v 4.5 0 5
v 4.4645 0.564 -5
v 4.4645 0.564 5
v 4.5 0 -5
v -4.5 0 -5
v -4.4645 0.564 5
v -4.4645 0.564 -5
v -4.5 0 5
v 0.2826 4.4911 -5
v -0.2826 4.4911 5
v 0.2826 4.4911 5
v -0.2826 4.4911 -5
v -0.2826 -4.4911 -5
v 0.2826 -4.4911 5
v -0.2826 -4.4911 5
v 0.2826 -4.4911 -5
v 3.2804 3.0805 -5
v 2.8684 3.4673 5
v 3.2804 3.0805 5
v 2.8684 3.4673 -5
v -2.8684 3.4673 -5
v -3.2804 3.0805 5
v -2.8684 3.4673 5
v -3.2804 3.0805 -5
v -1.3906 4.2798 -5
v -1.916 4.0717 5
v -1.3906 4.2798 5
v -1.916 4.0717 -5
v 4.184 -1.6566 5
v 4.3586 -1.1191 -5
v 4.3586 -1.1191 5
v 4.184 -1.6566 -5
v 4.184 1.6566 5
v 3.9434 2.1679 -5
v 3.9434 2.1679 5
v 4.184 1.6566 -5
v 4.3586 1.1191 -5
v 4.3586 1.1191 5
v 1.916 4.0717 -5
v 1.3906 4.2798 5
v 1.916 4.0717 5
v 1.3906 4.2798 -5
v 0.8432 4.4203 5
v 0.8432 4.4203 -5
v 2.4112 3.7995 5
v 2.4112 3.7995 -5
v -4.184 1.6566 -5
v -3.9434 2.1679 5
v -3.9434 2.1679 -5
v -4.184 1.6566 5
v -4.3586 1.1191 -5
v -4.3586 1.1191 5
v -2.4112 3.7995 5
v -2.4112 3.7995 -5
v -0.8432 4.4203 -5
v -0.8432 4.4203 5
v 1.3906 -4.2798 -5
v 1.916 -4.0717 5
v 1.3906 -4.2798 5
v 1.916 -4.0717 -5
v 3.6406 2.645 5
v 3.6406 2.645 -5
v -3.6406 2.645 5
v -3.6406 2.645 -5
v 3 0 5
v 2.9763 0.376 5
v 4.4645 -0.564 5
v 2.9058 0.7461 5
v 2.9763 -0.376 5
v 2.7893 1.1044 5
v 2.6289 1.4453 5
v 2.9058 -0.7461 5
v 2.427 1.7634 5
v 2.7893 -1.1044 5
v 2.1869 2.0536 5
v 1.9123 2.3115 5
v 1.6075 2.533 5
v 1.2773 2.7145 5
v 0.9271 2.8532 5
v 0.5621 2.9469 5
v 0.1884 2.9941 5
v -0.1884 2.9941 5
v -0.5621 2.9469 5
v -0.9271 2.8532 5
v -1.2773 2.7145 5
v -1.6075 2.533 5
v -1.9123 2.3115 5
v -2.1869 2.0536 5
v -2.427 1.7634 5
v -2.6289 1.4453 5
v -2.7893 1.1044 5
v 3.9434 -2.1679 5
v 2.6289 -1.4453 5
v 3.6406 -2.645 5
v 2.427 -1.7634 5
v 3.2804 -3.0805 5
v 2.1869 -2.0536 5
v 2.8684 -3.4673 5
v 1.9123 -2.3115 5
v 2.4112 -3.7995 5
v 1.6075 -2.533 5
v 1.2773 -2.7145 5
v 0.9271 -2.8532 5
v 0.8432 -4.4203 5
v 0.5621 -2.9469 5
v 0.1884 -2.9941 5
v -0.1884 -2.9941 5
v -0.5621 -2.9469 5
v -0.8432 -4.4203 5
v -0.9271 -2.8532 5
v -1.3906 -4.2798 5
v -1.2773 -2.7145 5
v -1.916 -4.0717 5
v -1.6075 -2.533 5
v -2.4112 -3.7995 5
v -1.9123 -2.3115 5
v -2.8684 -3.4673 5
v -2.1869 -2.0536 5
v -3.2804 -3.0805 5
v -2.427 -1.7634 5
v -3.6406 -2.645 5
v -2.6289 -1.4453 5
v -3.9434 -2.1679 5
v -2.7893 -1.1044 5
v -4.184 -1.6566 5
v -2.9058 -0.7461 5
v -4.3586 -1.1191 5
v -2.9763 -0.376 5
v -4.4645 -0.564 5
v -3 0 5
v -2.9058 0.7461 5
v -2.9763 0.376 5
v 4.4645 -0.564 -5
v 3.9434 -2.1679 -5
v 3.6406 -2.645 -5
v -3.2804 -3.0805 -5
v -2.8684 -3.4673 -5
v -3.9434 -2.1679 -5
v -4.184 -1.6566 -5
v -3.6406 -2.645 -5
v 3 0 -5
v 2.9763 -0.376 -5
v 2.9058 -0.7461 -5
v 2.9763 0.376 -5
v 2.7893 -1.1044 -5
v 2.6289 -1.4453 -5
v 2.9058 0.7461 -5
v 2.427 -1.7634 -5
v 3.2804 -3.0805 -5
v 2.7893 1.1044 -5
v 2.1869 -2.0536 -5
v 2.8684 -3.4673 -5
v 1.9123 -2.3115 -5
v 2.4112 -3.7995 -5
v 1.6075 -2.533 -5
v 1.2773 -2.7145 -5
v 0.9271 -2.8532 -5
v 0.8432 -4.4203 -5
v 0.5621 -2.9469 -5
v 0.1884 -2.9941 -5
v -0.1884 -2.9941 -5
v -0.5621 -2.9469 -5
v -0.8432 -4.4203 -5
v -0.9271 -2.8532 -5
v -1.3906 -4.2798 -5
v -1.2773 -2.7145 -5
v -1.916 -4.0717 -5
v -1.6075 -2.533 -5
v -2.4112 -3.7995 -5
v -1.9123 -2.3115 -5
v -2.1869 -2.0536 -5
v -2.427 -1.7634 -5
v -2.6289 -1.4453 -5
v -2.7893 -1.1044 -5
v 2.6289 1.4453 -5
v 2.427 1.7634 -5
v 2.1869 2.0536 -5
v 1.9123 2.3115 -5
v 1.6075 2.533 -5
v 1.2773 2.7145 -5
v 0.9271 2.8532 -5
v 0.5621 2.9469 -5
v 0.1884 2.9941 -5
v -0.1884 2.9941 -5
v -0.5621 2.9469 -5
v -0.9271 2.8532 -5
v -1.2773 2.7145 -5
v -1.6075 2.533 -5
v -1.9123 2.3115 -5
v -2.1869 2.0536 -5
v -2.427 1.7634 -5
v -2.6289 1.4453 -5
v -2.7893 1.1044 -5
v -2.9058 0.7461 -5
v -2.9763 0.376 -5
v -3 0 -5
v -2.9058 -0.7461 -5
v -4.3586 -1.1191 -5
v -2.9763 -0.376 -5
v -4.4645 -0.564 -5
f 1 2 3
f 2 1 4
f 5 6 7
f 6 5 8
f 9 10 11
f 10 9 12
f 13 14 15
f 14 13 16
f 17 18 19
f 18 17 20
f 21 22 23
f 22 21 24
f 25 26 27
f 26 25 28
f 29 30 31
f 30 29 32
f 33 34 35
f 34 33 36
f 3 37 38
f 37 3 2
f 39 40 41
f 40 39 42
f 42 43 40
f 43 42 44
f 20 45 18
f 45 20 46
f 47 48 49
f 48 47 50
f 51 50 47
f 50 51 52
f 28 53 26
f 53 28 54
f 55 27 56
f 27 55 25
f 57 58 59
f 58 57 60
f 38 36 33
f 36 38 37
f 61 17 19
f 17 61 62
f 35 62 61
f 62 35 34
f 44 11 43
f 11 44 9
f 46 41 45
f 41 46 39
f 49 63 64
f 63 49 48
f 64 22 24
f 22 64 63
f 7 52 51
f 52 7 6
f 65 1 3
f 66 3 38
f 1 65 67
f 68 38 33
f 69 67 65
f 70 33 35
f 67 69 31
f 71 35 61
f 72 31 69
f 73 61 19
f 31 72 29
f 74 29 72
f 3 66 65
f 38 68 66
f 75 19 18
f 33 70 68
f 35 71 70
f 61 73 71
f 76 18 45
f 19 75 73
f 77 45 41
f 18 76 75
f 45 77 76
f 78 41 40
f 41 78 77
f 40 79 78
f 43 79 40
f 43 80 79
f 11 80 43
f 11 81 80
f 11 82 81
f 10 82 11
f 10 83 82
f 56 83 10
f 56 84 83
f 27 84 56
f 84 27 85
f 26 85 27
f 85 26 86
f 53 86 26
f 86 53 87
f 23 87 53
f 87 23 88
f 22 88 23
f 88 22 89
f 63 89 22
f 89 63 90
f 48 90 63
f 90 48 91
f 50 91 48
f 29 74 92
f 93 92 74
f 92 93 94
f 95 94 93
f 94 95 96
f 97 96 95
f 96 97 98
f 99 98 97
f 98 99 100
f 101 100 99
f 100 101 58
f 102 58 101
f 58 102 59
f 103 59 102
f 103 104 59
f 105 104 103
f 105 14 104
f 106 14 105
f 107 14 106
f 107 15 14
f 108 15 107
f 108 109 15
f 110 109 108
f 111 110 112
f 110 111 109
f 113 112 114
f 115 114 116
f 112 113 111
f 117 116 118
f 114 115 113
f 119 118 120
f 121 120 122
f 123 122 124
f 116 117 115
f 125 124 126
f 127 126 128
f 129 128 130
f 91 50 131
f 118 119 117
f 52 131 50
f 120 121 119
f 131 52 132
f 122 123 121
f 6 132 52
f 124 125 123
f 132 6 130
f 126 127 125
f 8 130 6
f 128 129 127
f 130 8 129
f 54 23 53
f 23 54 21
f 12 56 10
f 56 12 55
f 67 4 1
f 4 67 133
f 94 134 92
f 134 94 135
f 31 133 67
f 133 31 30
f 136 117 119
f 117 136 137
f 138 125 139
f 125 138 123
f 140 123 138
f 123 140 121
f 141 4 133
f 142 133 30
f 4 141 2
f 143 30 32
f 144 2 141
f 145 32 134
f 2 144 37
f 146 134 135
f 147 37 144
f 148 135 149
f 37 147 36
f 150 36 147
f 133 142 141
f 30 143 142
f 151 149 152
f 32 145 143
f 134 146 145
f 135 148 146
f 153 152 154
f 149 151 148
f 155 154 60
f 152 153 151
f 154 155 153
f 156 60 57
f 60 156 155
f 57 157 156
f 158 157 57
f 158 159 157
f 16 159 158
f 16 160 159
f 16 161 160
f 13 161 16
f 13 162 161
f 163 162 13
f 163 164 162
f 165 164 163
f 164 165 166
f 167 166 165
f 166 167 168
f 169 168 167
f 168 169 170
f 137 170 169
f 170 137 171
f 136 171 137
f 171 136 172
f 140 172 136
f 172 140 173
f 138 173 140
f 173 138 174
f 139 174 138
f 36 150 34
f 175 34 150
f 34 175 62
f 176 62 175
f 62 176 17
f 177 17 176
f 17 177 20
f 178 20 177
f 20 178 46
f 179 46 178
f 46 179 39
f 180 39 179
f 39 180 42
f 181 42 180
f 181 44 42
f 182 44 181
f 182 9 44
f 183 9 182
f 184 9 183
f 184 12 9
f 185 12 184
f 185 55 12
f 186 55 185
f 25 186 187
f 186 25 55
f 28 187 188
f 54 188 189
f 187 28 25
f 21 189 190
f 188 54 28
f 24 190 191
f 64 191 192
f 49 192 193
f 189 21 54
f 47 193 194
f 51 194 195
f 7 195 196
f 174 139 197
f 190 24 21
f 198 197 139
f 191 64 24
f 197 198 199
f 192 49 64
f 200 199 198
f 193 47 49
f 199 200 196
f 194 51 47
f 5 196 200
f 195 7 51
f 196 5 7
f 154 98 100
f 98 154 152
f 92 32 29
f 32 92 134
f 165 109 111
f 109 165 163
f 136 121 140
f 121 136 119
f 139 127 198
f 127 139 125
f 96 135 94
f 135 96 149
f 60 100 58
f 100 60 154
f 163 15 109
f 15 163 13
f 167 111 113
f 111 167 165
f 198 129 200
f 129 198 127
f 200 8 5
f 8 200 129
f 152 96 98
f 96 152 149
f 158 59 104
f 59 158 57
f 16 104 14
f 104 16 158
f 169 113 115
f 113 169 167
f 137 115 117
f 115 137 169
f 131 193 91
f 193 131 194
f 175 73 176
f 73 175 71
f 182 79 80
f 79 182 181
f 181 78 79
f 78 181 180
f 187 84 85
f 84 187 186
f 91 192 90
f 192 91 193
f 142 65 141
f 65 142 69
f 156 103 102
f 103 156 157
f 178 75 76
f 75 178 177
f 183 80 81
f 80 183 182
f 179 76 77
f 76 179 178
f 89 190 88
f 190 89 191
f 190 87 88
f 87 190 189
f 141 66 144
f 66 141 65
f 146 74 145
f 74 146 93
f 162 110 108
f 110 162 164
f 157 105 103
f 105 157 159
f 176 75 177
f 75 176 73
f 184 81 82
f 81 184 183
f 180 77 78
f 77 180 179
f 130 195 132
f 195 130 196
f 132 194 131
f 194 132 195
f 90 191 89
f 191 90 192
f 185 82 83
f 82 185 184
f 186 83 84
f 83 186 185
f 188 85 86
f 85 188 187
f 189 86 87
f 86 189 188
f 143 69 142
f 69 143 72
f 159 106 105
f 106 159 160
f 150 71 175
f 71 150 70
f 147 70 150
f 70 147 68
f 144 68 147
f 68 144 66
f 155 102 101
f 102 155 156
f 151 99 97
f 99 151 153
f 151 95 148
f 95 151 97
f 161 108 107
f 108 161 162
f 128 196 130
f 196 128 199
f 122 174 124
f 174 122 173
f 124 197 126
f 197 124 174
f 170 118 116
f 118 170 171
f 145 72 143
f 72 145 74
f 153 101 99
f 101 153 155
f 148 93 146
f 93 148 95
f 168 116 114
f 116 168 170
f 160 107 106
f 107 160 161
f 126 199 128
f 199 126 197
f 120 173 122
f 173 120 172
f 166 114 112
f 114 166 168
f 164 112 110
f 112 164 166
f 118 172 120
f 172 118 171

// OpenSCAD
$fn = 50;


difference() {
	union() {
		translate(v = [0, 0, -5.0000000000]) {
			cylinder(h = 10, r = 4.5000000000);
		}
	}
	union() {
		translate(v = [0, 0, -100.0000000000]) {
			cylinder(h = 200, r = 3);
		}
	}
}
